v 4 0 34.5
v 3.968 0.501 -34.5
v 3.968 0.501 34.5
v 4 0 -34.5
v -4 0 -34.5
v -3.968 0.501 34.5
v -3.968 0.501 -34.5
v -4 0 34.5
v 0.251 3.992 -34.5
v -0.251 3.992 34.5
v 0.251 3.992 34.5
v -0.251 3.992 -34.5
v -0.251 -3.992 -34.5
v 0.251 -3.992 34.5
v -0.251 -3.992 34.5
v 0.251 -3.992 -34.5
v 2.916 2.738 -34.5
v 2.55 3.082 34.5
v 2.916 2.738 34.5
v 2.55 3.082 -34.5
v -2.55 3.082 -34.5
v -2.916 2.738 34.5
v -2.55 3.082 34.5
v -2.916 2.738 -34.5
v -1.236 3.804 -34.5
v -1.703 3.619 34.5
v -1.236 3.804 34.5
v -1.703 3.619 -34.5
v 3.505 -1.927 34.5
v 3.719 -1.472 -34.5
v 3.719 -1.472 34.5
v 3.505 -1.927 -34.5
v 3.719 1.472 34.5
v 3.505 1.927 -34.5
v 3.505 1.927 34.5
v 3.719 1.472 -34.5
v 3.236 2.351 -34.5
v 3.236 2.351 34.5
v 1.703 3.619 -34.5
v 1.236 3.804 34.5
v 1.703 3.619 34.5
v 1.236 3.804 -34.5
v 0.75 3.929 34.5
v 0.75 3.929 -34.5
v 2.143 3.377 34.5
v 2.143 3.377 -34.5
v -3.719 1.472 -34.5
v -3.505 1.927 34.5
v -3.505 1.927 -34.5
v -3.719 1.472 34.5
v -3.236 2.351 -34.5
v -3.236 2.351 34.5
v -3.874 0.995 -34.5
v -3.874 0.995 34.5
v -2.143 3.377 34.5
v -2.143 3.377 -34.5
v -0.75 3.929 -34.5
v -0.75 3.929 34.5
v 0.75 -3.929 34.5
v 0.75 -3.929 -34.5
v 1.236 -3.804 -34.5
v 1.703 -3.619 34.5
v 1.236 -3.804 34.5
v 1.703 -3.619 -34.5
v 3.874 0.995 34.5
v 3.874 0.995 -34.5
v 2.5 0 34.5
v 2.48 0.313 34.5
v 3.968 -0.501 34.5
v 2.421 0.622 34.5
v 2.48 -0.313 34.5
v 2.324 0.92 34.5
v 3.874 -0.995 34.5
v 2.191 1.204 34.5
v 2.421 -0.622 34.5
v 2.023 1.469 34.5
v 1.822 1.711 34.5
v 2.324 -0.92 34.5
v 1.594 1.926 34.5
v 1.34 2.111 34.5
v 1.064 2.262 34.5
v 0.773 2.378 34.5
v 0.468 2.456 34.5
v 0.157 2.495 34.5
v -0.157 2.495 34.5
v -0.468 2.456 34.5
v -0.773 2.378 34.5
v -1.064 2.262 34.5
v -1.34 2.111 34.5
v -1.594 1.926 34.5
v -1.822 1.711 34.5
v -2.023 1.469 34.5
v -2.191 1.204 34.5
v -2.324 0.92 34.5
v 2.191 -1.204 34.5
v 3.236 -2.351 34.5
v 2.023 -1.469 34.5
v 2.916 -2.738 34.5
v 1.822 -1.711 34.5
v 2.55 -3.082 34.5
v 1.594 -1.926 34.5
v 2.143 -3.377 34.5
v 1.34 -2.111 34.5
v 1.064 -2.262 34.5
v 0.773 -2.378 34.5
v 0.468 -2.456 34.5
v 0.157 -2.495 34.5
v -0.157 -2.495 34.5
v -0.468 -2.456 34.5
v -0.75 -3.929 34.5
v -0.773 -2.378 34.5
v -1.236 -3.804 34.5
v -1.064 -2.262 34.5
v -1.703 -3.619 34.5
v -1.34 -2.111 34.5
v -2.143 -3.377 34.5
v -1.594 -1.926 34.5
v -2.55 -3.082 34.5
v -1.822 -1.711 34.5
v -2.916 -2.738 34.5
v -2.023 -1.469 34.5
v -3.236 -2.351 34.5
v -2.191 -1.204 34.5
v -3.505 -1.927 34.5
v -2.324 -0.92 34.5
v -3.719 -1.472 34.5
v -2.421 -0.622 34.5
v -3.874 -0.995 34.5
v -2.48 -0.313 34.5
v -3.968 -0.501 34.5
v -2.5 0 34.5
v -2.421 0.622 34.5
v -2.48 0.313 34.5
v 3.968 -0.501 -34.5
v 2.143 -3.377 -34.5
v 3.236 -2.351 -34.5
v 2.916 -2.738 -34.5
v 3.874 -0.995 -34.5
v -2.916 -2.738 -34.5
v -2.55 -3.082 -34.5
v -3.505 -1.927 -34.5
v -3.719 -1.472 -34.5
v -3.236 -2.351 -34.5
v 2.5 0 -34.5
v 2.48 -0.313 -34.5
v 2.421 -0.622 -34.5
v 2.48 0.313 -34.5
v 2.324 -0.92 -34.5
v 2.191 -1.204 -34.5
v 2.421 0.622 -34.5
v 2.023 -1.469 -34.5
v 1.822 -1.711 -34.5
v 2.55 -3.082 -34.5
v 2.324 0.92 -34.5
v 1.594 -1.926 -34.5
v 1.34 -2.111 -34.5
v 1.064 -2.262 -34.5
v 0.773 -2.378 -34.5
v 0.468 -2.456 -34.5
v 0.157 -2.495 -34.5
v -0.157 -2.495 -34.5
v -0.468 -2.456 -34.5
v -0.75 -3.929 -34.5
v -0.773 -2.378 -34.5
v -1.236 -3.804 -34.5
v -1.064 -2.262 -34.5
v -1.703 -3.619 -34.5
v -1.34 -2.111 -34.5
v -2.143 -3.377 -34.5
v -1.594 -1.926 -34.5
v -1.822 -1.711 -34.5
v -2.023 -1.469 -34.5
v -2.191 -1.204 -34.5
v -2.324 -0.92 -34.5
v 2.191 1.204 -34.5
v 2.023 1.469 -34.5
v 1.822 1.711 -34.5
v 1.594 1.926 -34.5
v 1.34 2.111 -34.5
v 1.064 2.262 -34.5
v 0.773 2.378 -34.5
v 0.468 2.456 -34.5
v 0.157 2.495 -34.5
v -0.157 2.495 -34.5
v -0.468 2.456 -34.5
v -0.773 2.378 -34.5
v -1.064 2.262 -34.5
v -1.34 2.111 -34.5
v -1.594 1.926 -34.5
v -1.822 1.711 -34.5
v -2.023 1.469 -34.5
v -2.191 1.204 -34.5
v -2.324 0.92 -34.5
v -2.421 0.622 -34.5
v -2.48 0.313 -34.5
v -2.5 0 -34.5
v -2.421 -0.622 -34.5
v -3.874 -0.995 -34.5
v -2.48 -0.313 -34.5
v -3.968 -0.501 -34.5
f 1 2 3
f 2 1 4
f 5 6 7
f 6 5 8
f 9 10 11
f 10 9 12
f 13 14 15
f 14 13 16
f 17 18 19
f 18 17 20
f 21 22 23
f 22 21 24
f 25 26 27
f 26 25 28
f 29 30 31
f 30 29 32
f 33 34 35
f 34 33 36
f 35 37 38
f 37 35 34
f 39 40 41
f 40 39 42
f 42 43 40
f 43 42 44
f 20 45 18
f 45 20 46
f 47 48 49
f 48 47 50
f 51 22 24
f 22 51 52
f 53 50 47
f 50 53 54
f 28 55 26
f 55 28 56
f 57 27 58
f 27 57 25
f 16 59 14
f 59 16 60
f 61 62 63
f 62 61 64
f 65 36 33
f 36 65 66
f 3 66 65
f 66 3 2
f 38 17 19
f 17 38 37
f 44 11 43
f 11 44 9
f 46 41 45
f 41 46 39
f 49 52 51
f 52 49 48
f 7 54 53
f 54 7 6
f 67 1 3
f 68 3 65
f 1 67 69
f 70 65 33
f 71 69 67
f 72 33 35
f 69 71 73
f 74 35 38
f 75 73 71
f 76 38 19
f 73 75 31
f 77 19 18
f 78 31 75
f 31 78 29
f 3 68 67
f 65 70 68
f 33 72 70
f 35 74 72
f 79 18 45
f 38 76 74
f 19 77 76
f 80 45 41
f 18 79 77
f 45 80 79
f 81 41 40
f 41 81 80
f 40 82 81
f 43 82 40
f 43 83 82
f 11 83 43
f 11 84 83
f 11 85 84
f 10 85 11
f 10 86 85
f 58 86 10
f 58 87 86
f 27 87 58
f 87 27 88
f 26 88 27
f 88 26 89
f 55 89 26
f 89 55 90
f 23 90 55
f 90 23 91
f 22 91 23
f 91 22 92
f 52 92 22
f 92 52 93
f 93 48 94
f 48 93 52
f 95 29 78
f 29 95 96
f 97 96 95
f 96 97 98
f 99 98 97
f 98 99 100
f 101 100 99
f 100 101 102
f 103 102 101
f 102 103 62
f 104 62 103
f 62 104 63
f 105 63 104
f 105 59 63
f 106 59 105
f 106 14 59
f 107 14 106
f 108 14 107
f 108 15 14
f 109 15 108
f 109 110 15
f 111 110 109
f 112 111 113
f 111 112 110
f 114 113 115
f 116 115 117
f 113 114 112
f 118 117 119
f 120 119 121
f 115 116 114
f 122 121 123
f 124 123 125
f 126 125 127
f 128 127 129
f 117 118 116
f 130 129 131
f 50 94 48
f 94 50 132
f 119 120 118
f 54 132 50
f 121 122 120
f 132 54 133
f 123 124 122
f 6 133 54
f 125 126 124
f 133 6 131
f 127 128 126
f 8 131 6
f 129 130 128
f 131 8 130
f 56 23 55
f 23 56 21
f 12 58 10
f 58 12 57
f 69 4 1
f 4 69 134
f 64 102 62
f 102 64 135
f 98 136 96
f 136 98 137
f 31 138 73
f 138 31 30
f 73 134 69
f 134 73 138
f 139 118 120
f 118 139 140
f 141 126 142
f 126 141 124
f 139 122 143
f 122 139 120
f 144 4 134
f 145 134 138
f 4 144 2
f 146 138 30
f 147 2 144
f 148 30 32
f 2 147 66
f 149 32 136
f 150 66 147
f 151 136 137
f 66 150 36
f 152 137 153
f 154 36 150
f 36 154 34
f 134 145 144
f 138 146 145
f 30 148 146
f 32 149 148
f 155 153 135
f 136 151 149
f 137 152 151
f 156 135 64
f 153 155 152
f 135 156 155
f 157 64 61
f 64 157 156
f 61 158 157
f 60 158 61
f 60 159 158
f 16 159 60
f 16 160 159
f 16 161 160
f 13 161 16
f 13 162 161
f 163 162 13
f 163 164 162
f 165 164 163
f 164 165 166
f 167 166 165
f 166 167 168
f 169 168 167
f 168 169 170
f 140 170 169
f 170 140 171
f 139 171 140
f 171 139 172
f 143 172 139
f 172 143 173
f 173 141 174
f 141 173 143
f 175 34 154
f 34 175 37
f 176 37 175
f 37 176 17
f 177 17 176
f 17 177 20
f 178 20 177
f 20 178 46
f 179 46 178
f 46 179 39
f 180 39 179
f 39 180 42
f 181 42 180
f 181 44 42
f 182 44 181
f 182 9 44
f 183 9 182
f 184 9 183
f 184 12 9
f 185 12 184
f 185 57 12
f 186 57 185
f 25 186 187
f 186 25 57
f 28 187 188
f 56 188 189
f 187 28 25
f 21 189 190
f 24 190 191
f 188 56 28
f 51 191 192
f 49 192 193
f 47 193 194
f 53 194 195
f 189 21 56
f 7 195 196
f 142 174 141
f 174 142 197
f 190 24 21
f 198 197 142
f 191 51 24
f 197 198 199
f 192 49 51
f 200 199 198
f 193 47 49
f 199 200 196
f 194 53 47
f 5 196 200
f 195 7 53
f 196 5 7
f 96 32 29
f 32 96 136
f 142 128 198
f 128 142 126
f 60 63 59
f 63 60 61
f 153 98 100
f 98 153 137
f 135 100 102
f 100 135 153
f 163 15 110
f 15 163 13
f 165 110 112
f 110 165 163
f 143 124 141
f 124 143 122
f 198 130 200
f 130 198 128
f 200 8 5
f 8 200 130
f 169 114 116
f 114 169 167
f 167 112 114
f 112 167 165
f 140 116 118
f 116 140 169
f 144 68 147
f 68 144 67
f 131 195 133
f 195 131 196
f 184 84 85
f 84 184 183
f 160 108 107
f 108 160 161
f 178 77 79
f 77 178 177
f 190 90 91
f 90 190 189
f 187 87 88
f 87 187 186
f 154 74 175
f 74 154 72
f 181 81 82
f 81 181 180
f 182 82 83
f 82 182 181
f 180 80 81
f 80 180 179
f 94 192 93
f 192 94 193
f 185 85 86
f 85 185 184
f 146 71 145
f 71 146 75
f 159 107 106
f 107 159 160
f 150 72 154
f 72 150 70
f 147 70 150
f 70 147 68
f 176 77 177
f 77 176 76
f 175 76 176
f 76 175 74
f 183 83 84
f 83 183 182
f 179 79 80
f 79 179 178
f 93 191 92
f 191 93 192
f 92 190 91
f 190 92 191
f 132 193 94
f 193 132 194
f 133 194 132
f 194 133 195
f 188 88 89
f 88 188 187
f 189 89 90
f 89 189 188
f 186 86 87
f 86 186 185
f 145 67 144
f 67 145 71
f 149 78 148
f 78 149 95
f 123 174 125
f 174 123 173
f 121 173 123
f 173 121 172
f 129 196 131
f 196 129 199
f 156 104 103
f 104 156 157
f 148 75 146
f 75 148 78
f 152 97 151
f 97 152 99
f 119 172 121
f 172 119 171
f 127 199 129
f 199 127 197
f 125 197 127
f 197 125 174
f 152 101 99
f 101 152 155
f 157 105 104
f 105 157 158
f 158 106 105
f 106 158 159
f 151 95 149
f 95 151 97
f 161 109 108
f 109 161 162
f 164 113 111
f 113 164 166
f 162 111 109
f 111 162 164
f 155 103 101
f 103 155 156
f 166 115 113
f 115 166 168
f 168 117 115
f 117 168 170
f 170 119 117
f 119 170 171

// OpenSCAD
$fn = 50;


difference() {
	union() {
		translate(v = [0, 0, -34.5000000000]) {
			cylinder(h = 69, r = 4.0000000000);
		}
	}
	union() {
		translate(v = [0, 0, -100.0000000000]) {
			cylinder(h = 200, r = 2.5000000000);
		}
	}
}
